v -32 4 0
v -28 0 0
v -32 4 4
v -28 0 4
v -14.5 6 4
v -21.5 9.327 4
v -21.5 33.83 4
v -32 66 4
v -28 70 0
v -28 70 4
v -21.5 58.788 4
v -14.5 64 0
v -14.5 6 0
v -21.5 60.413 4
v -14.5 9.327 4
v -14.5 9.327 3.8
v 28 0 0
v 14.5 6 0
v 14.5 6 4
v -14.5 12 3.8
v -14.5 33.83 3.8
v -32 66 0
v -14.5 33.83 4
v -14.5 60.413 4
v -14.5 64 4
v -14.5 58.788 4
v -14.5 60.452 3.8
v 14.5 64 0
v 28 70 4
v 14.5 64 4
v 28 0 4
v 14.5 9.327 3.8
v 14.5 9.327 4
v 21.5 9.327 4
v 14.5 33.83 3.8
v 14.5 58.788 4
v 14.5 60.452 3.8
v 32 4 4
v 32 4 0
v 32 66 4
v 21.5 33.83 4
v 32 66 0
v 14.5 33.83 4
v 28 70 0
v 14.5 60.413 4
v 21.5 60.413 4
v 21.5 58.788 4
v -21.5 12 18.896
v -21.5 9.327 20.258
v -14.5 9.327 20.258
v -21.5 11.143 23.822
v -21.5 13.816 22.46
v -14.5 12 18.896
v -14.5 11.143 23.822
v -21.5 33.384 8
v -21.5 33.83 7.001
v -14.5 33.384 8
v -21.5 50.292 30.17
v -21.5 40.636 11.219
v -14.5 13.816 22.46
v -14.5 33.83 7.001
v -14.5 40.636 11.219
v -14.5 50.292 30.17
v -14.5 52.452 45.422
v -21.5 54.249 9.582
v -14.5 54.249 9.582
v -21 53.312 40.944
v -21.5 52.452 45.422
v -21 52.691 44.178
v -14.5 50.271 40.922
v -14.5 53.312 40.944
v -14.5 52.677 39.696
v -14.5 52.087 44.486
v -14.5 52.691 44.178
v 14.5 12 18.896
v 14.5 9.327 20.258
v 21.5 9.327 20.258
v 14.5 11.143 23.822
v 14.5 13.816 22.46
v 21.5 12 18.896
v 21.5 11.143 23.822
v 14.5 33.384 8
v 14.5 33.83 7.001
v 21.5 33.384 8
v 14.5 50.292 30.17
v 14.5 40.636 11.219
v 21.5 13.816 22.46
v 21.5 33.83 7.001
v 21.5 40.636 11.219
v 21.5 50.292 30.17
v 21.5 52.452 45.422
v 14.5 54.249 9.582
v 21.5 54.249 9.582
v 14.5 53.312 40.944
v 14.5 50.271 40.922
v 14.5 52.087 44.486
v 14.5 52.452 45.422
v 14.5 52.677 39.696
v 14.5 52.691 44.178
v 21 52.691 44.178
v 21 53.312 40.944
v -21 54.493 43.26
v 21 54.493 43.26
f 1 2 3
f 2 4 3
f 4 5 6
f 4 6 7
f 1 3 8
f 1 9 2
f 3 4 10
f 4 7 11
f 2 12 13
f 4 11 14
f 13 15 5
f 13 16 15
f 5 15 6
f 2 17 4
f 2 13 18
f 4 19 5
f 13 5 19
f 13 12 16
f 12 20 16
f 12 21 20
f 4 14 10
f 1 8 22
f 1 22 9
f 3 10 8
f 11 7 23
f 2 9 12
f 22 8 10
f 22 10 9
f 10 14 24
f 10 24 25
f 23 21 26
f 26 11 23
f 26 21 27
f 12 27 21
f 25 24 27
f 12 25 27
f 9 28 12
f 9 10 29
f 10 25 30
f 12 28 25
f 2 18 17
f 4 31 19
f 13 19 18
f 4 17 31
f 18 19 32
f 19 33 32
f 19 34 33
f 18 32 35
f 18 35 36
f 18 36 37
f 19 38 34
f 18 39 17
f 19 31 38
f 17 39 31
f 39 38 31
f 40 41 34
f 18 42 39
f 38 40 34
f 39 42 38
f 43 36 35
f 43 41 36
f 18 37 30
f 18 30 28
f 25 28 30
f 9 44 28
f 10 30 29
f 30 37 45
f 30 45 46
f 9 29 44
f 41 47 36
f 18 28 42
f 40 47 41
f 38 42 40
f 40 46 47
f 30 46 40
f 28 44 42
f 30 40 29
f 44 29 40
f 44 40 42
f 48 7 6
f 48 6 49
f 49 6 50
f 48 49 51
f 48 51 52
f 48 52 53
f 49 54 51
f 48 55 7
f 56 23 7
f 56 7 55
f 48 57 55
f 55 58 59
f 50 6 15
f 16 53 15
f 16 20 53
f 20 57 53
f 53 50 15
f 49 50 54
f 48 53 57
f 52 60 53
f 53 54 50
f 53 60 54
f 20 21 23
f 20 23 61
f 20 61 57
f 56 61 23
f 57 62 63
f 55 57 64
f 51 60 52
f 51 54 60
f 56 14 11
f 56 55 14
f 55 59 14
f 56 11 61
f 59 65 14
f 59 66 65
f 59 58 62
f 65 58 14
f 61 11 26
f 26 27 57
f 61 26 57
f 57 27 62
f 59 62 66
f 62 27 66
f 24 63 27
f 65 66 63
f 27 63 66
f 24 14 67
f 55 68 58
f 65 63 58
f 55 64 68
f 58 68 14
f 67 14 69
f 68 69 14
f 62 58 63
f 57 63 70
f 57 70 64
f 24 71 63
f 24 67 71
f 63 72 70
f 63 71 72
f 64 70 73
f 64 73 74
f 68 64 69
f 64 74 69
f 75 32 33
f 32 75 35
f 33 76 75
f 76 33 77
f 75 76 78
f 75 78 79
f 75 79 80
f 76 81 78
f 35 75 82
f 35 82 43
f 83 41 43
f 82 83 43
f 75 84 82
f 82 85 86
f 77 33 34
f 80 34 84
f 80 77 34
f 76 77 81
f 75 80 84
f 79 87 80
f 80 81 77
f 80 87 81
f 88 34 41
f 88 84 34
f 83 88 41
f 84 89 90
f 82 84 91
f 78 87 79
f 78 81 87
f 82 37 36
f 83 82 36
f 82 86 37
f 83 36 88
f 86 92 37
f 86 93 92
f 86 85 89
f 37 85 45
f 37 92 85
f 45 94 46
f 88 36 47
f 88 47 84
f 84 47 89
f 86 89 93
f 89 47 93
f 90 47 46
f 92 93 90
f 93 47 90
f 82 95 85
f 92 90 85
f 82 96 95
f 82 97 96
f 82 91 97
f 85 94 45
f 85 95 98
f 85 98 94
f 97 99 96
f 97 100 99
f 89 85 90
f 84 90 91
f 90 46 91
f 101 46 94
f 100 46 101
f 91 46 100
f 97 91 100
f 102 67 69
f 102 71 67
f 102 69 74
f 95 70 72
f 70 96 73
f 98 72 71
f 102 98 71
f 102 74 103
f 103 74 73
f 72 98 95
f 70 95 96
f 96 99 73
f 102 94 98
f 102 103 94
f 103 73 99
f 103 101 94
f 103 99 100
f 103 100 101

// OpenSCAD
// CoreS3 SE + M5GO-BOTTOM 3 desktop stand, V2. Units: mm.
// Print base-down. Angle is REARWARD FROM VERTICAL (screen 63 deg to desk).
// The assembled 23 mm measurement controls fit, not summed module specs.
device_width = 54;
device_height = 54;
device_thickness = 23;
thickness_clearance = 1.0; // TOTAL: cradle depth = 24 mm
view_angle = 27;
base_width = 64;
base_depth = 70;
base_thickness = 4;
corner_chamfer = 4;
rail_width = 7;
rail_spacing = 36; // center-to-center; supports lie inside device sides
frame_wall = 5;
support_height = 42; // along back of device, leaves top open
rear_extension = 8;
front_y = 12;
seat_lift = 4;
tab_height = 4;
tab_thickness = 3;
rubber_feet = false;
foot_diameter = 8;
foot_recess_depth = 1;
show_device = false; // preview only; excluded from STL via % modifier
$fn = 64;

depth = device_thickness + thickness_clearance;
origin_z = base_thickness + seat_lift + depth*sin(view_angle);
function p(n,u) = [front_y+n*cos(view_angle)+u*sin(view_angle),
                  origin_z-n*sin(view_angle)+u*cos(view_angle)];
a=p(depth,-1); // overlap lower seat to avoid point-only connections
b=p(depth,support_height);
c=[b[0]+rear_extension,base_thickness-0.2];
triangle=[a,b,c];
seat=[p(0,0),p(depth+0.5,0),[p(depth+0.5,0)[0],base_thickness-0.2],
      [front_y,base_thickness-0.2]];
tabs=[p(-tab_thickness,tab_height),p(0,tab_height),p(0,0),
      [front_y,base_thickness-0.2],
      [p(-tab_thickness,0)[0],base_thickness-0.2],p(-tab_thickness,0)];

assert(view_angle>=10 && view_angle<=40, "Use a 10-40 degree tilt for V2.");
assert(base_width>device_width && rail_spacing+rail_width<device_width);
assert(base_depth>c[0]+5, "Increase base_depth for this angle/height.");
assert(foot_recess_depth<base_thickness && thickness_clearance>=0);

module side_extrude(x) {
    // Local 2D coordinates are [y,z]; extrusion is along global x.
    translate([x-rail_width/2,0,0])
        multmatrix([[0,0,1,0],[1,0,0,0],[0,1,0,0],[0,0,0,1]])
            linear_extrude(height=rail_width) children();
}
module rear_brace() {
    translate([-(rail_spacing+rail_width-1)/2,0,0])
        multmatrix([[0,0,1,0],[1,0,0,0],[0,1,0,0],[0,0,0,1]])
            linear_extrude(height=rail_spacing+rail_width-1)
                polygon([p(depth+0.1,support_height-5),p(depth+2.8,support_height-5),
                         p(depth+2.8,support_height-1),p(depth+0.1,support_height-1)]);
}
module base() {
    w=base_width/2; d=base_depth; r=corner_chamfer;
    linear_extrude(height=base_thickness) difference() {
        polygon([[-w+r,0],[w-r,0],[w,r],[w,d-r],
                 [w-r,d],[-w+r,d],[-w,d-r],[-w,r]]);
        translate([-(rail_spacing-rail_width)/2,6])
            square([rail_spacing-rail_width,base_depth-12]);
    }
}
module stand() {
    difference() {
        union() {
            base();
            rear_brace(); // 29 mm clear bridge; inspect bridge paths in slicer
            for(x=[-rail_spacing/2,rail_spacing/2]) side_extrude(x) {
                polygon(seat);
                polygon(tabs);
                difference() {
                    polygon(triangle);
                    offset(delta=-frame_wall) polygon(triangle);
                }
            }
        }
        if(rubber_feet)
            for(x=[-base_width/2+10,base_width/2-10])
                for(y=[10,base_depth-10])
                    translate([x,y,-0.1])
                        cylinder(d=foot_diameter,h=foot_recess_depth+0.1);
    }
}
stand();
if(show_device) %color([0.25,0.45,0.65,0.35])
    translate([-device_width/2,front_y,origin_z])
        rotate([-view_angle,0,0])
            cube([device_width,device_thickness,device_height]);
